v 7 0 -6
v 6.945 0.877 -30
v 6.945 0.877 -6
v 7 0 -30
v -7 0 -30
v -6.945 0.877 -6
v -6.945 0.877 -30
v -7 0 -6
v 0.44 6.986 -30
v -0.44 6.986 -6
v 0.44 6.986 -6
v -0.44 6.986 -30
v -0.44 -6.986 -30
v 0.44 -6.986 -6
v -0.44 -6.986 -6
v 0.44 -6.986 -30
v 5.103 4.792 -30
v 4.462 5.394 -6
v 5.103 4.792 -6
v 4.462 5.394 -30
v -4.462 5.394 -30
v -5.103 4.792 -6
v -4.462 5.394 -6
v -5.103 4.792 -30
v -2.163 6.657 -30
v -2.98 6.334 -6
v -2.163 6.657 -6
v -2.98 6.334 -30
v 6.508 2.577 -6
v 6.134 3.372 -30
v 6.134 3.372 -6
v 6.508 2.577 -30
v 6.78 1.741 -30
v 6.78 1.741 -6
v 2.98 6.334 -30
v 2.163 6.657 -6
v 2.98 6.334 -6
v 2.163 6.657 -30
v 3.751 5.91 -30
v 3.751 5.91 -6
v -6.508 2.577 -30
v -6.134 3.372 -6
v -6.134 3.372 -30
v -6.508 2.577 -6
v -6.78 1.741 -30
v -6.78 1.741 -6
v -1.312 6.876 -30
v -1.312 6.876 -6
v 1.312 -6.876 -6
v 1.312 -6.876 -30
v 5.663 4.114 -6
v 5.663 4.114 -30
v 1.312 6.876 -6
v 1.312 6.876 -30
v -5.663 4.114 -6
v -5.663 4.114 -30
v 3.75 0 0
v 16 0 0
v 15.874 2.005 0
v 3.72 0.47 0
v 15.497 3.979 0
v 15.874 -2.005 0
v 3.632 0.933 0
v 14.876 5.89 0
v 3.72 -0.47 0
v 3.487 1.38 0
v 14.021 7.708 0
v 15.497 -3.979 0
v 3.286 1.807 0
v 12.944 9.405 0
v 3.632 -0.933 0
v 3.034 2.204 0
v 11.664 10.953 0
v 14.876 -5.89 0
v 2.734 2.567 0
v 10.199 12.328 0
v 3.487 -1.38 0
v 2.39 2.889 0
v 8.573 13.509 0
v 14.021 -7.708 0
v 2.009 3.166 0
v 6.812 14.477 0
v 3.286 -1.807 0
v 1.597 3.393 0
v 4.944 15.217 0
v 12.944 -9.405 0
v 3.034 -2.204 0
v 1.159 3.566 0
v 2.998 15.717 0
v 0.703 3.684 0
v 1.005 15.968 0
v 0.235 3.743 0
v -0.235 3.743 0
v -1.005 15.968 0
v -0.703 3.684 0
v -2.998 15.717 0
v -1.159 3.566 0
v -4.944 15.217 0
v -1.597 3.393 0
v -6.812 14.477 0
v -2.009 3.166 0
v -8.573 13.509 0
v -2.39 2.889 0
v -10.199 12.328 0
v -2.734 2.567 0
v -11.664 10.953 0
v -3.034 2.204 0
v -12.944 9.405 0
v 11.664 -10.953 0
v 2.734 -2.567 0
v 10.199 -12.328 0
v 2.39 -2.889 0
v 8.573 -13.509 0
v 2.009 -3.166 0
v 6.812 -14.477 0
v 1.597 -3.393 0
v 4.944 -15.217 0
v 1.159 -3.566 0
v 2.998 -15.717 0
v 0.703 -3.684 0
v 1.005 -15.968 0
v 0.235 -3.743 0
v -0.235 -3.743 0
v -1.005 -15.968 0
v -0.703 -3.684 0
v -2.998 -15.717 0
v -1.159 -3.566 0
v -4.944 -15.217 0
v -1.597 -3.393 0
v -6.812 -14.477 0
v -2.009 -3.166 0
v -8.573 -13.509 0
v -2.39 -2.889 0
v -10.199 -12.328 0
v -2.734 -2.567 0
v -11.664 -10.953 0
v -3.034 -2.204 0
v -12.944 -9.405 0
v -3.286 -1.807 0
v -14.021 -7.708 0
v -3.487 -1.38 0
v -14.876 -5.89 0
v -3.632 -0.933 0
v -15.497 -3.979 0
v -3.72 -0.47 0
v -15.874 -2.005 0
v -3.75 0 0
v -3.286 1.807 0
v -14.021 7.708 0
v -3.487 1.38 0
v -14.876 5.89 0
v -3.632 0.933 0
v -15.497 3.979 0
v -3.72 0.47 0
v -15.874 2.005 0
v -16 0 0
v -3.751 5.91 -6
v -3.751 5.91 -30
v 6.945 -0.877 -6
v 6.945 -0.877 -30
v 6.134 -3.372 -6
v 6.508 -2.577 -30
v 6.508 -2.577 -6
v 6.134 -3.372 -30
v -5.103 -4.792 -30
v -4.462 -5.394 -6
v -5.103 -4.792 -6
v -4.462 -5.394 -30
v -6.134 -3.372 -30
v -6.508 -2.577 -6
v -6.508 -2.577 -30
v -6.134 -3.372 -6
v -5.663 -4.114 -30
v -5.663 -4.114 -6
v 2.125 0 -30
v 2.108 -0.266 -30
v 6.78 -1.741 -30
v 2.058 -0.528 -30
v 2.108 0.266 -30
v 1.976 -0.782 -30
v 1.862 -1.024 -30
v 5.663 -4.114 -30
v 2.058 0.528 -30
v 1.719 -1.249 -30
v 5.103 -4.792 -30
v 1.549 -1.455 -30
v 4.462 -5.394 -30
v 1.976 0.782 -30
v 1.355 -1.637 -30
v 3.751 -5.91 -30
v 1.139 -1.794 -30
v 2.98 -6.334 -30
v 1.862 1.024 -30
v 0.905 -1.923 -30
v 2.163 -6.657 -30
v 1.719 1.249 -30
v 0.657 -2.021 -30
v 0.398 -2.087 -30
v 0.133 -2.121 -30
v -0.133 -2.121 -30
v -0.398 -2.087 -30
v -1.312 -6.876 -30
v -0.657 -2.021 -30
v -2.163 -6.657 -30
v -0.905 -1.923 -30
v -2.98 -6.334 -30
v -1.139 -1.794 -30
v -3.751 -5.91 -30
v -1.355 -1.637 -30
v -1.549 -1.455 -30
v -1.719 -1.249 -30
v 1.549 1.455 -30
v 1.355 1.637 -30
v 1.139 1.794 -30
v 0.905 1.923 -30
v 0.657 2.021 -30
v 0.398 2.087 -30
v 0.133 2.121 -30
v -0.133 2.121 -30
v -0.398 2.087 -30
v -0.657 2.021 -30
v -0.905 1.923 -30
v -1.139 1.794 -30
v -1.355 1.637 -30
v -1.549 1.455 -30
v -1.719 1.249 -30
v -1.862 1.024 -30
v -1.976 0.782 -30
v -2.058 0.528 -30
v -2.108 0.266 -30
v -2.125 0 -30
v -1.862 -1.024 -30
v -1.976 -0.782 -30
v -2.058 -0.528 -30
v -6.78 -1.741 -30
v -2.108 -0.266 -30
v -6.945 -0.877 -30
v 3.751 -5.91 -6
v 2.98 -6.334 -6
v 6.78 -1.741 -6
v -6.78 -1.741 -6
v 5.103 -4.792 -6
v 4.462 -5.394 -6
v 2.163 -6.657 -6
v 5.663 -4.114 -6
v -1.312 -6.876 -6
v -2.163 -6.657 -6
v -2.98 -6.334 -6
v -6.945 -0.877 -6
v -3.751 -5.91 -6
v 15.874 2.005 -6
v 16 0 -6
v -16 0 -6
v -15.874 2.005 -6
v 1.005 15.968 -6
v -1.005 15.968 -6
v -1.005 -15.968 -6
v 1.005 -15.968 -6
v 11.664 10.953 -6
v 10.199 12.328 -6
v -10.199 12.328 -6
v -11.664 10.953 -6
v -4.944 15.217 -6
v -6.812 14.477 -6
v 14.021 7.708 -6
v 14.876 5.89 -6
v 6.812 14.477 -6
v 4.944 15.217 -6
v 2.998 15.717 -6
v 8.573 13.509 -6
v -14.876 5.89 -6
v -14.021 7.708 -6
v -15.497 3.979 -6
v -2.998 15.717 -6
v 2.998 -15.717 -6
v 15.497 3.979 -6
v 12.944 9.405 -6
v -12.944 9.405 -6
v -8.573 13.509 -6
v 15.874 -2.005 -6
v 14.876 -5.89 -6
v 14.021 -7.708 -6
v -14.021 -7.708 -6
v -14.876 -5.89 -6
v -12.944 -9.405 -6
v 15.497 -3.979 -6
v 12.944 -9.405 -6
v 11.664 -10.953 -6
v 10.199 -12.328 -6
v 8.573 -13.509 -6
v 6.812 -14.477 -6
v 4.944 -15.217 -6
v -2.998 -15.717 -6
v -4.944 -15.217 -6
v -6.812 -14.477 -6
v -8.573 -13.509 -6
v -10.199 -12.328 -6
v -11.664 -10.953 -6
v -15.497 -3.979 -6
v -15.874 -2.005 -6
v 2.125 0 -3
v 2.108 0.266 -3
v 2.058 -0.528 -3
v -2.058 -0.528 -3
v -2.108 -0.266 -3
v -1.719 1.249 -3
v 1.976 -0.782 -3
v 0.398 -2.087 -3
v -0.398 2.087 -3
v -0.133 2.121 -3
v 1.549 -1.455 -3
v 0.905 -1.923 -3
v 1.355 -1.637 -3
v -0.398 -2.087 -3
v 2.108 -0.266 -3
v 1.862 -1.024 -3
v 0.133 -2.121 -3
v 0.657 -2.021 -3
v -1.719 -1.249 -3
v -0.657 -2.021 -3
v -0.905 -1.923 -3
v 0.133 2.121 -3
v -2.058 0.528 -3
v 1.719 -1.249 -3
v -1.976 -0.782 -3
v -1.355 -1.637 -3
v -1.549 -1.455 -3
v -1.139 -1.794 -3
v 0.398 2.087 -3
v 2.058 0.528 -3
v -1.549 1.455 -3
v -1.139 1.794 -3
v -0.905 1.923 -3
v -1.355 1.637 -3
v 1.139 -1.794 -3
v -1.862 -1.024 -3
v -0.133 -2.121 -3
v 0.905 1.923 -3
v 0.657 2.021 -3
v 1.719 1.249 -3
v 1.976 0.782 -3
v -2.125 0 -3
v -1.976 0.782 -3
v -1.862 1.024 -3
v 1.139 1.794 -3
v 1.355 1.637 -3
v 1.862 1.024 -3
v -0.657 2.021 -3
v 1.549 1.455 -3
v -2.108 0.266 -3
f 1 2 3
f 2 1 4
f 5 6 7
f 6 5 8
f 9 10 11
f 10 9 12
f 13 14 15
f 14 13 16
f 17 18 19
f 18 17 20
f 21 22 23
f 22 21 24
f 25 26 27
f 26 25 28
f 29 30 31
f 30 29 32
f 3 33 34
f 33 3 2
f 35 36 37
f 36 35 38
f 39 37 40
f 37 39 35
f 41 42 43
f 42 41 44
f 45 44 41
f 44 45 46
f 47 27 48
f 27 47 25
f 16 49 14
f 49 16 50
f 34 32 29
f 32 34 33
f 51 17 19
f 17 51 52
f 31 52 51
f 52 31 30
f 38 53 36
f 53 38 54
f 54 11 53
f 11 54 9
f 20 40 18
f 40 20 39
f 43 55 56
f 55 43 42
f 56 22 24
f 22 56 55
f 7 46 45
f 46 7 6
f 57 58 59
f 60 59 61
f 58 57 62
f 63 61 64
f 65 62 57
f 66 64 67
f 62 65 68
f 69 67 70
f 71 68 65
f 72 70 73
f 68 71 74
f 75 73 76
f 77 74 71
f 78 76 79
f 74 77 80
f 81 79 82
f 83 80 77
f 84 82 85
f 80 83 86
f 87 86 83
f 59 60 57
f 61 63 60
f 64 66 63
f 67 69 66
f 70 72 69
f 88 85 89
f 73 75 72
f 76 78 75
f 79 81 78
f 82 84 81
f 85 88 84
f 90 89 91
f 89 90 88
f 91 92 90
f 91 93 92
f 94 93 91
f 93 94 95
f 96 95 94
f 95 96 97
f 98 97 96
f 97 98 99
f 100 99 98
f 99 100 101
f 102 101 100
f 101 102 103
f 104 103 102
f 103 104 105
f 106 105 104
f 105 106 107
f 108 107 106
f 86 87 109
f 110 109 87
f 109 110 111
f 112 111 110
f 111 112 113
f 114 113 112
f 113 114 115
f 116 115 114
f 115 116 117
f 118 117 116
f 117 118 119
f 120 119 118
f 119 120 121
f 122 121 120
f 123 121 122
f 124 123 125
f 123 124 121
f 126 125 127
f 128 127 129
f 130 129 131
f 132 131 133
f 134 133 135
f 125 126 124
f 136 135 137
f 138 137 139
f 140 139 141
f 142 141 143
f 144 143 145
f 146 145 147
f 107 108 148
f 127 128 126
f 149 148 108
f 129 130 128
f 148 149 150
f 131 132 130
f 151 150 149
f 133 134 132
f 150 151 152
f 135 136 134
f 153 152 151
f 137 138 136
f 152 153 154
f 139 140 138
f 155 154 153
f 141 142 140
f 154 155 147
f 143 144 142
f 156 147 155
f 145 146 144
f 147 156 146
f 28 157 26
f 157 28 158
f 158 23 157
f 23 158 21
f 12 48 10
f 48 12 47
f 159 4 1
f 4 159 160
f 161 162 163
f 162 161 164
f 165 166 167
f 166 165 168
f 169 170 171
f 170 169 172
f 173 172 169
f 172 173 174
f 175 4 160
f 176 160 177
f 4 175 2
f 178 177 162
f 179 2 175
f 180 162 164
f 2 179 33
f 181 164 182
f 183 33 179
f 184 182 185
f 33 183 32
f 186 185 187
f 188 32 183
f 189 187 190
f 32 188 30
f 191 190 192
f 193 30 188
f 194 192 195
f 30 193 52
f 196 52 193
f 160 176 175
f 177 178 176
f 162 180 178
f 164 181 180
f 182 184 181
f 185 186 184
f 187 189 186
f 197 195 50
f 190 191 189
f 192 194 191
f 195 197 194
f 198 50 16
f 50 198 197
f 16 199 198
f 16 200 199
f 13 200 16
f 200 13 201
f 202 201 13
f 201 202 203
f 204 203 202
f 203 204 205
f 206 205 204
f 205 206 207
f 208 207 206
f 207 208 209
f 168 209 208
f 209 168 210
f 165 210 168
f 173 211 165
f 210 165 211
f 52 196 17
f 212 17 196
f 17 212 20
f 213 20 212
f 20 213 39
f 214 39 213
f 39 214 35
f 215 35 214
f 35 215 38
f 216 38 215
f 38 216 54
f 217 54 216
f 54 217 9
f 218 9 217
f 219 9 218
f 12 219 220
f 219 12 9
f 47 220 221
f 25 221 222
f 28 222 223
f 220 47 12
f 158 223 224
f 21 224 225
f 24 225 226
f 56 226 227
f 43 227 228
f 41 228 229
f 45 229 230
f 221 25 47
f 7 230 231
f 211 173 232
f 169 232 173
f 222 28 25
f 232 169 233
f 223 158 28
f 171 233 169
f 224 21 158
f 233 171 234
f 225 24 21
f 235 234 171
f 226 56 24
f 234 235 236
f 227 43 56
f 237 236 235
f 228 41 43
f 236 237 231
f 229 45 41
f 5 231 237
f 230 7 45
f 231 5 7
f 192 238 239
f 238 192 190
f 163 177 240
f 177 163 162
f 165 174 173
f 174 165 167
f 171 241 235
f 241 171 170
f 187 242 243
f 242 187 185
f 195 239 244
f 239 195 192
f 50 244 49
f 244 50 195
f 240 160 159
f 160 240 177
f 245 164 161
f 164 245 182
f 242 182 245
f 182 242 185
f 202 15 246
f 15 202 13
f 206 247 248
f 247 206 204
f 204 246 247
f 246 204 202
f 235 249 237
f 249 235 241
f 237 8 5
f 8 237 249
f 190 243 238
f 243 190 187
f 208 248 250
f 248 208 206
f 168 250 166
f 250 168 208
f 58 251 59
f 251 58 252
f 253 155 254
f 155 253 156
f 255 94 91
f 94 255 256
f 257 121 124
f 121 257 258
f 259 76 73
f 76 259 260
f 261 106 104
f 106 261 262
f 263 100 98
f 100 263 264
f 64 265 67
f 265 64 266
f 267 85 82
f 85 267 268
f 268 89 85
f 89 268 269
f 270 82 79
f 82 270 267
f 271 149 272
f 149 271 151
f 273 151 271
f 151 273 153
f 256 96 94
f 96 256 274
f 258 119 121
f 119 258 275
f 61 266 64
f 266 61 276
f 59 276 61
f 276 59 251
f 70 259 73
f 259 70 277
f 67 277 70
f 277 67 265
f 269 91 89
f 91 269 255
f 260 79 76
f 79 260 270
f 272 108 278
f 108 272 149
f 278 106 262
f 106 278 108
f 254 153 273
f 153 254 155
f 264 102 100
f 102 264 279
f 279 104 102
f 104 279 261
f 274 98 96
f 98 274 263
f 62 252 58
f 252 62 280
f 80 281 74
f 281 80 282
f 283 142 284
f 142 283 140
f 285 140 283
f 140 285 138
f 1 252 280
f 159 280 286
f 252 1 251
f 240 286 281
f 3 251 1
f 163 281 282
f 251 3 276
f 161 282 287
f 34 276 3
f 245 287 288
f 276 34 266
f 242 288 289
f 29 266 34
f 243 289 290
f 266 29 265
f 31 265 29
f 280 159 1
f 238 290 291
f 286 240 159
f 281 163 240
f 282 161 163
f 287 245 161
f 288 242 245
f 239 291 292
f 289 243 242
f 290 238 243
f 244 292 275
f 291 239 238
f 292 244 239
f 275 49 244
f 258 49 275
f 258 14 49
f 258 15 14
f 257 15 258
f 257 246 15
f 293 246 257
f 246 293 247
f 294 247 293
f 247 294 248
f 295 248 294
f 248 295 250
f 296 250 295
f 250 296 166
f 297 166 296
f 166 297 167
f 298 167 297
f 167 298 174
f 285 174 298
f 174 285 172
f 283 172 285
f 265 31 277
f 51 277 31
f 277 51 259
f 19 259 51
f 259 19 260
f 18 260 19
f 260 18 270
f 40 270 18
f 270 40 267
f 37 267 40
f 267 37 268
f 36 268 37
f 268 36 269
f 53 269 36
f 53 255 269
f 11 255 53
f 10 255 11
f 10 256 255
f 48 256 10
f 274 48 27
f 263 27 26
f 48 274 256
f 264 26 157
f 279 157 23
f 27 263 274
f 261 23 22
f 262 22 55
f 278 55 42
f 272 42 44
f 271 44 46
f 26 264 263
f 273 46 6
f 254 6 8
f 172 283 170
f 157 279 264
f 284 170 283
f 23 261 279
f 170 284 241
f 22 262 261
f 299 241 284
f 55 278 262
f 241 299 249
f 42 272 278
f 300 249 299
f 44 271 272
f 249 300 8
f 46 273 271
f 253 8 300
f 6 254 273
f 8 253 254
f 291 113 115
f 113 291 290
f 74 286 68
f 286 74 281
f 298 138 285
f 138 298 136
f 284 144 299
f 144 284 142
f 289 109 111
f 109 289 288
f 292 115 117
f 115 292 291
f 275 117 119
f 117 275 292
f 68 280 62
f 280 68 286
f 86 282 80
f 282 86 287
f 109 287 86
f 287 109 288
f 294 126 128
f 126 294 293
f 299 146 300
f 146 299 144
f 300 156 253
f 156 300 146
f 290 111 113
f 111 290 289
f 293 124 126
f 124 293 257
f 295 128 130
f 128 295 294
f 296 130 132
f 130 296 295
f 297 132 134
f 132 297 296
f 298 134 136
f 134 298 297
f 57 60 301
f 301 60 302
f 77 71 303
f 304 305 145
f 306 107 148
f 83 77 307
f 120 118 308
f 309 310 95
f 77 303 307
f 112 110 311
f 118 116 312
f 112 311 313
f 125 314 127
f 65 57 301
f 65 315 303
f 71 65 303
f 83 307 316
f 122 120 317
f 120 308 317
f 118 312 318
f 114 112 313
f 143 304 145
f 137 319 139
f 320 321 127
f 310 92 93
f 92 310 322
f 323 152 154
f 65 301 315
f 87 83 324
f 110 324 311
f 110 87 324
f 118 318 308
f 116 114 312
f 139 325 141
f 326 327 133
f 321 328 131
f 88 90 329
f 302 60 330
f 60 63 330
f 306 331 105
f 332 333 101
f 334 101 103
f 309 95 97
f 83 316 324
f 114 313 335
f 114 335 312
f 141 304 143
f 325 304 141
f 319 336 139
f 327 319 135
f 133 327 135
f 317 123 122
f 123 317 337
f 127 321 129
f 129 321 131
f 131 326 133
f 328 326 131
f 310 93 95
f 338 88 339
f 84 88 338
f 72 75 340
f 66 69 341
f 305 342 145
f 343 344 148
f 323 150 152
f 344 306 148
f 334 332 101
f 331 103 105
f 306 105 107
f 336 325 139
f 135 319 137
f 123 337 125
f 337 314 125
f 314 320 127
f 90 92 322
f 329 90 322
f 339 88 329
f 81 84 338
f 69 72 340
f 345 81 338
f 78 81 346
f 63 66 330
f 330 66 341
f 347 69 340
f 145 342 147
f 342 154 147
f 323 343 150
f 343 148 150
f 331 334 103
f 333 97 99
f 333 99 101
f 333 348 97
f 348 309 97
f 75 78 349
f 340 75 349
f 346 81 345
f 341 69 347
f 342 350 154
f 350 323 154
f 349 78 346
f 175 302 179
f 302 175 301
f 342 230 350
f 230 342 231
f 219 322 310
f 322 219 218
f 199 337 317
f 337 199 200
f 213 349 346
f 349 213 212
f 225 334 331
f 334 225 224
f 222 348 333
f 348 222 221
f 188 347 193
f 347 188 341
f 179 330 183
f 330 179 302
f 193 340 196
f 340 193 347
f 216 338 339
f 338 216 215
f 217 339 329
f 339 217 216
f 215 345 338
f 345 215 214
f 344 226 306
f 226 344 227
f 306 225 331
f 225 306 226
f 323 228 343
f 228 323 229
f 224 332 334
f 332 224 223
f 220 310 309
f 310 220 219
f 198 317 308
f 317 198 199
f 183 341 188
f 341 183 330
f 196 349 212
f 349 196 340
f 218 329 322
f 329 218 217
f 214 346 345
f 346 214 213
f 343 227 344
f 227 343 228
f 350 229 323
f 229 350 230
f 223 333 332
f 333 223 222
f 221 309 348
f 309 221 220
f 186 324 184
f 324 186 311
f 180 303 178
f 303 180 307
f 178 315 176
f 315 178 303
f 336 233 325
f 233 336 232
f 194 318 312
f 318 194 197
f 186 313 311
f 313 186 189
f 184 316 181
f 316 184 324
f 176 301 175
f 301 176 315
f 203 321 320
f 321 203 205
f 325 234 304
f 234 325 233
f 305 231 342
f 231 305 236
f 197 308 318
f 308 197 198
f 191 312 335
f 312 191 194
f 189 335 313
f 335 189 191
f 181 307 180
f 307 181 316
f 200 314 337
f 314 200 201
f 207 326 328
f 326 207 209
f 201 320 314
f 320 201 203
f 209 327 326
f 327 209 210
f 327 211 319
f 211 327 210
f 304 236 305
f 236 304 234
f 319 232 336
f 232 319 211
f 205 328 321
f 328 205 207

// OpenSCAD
$fn = 50;


difference() {
	union() {
		translate(v = [0, 0, -30.0000000000]) {
			cylinder(h = 30, r = 7.0000000000);
		}
		translate(v = [0, 0, -6.0000000000]) {
			cylinder(h = 6, r = 16.0000000000);
		}
	}
	union() {
		translate(v = [0, 0, 0]) {
			rotate(a = [0, 0, 0]) {
				difference() {
					union() {
						#translate(v = [0, 0, -30.0000000000]) {
							cylinder(h = 30, r = 2.0000000000);
						}
						#translate(v = [0, 0, -3]) {
							cylinder(h = 3, r1 = 2.1250000000, r2 = 3.7500000000);
						}
						#translate(v = [0, 0, -30.0000000000]) {
							cylinder(h = 30, r = 2.1250000000);
						}
						#translate(v = [0, 0, -30.0000000000]) {
							cylinder(h = 30, r = 2.0000000000);
						}
					}
					union();
				}
			}
		}
	}
}
